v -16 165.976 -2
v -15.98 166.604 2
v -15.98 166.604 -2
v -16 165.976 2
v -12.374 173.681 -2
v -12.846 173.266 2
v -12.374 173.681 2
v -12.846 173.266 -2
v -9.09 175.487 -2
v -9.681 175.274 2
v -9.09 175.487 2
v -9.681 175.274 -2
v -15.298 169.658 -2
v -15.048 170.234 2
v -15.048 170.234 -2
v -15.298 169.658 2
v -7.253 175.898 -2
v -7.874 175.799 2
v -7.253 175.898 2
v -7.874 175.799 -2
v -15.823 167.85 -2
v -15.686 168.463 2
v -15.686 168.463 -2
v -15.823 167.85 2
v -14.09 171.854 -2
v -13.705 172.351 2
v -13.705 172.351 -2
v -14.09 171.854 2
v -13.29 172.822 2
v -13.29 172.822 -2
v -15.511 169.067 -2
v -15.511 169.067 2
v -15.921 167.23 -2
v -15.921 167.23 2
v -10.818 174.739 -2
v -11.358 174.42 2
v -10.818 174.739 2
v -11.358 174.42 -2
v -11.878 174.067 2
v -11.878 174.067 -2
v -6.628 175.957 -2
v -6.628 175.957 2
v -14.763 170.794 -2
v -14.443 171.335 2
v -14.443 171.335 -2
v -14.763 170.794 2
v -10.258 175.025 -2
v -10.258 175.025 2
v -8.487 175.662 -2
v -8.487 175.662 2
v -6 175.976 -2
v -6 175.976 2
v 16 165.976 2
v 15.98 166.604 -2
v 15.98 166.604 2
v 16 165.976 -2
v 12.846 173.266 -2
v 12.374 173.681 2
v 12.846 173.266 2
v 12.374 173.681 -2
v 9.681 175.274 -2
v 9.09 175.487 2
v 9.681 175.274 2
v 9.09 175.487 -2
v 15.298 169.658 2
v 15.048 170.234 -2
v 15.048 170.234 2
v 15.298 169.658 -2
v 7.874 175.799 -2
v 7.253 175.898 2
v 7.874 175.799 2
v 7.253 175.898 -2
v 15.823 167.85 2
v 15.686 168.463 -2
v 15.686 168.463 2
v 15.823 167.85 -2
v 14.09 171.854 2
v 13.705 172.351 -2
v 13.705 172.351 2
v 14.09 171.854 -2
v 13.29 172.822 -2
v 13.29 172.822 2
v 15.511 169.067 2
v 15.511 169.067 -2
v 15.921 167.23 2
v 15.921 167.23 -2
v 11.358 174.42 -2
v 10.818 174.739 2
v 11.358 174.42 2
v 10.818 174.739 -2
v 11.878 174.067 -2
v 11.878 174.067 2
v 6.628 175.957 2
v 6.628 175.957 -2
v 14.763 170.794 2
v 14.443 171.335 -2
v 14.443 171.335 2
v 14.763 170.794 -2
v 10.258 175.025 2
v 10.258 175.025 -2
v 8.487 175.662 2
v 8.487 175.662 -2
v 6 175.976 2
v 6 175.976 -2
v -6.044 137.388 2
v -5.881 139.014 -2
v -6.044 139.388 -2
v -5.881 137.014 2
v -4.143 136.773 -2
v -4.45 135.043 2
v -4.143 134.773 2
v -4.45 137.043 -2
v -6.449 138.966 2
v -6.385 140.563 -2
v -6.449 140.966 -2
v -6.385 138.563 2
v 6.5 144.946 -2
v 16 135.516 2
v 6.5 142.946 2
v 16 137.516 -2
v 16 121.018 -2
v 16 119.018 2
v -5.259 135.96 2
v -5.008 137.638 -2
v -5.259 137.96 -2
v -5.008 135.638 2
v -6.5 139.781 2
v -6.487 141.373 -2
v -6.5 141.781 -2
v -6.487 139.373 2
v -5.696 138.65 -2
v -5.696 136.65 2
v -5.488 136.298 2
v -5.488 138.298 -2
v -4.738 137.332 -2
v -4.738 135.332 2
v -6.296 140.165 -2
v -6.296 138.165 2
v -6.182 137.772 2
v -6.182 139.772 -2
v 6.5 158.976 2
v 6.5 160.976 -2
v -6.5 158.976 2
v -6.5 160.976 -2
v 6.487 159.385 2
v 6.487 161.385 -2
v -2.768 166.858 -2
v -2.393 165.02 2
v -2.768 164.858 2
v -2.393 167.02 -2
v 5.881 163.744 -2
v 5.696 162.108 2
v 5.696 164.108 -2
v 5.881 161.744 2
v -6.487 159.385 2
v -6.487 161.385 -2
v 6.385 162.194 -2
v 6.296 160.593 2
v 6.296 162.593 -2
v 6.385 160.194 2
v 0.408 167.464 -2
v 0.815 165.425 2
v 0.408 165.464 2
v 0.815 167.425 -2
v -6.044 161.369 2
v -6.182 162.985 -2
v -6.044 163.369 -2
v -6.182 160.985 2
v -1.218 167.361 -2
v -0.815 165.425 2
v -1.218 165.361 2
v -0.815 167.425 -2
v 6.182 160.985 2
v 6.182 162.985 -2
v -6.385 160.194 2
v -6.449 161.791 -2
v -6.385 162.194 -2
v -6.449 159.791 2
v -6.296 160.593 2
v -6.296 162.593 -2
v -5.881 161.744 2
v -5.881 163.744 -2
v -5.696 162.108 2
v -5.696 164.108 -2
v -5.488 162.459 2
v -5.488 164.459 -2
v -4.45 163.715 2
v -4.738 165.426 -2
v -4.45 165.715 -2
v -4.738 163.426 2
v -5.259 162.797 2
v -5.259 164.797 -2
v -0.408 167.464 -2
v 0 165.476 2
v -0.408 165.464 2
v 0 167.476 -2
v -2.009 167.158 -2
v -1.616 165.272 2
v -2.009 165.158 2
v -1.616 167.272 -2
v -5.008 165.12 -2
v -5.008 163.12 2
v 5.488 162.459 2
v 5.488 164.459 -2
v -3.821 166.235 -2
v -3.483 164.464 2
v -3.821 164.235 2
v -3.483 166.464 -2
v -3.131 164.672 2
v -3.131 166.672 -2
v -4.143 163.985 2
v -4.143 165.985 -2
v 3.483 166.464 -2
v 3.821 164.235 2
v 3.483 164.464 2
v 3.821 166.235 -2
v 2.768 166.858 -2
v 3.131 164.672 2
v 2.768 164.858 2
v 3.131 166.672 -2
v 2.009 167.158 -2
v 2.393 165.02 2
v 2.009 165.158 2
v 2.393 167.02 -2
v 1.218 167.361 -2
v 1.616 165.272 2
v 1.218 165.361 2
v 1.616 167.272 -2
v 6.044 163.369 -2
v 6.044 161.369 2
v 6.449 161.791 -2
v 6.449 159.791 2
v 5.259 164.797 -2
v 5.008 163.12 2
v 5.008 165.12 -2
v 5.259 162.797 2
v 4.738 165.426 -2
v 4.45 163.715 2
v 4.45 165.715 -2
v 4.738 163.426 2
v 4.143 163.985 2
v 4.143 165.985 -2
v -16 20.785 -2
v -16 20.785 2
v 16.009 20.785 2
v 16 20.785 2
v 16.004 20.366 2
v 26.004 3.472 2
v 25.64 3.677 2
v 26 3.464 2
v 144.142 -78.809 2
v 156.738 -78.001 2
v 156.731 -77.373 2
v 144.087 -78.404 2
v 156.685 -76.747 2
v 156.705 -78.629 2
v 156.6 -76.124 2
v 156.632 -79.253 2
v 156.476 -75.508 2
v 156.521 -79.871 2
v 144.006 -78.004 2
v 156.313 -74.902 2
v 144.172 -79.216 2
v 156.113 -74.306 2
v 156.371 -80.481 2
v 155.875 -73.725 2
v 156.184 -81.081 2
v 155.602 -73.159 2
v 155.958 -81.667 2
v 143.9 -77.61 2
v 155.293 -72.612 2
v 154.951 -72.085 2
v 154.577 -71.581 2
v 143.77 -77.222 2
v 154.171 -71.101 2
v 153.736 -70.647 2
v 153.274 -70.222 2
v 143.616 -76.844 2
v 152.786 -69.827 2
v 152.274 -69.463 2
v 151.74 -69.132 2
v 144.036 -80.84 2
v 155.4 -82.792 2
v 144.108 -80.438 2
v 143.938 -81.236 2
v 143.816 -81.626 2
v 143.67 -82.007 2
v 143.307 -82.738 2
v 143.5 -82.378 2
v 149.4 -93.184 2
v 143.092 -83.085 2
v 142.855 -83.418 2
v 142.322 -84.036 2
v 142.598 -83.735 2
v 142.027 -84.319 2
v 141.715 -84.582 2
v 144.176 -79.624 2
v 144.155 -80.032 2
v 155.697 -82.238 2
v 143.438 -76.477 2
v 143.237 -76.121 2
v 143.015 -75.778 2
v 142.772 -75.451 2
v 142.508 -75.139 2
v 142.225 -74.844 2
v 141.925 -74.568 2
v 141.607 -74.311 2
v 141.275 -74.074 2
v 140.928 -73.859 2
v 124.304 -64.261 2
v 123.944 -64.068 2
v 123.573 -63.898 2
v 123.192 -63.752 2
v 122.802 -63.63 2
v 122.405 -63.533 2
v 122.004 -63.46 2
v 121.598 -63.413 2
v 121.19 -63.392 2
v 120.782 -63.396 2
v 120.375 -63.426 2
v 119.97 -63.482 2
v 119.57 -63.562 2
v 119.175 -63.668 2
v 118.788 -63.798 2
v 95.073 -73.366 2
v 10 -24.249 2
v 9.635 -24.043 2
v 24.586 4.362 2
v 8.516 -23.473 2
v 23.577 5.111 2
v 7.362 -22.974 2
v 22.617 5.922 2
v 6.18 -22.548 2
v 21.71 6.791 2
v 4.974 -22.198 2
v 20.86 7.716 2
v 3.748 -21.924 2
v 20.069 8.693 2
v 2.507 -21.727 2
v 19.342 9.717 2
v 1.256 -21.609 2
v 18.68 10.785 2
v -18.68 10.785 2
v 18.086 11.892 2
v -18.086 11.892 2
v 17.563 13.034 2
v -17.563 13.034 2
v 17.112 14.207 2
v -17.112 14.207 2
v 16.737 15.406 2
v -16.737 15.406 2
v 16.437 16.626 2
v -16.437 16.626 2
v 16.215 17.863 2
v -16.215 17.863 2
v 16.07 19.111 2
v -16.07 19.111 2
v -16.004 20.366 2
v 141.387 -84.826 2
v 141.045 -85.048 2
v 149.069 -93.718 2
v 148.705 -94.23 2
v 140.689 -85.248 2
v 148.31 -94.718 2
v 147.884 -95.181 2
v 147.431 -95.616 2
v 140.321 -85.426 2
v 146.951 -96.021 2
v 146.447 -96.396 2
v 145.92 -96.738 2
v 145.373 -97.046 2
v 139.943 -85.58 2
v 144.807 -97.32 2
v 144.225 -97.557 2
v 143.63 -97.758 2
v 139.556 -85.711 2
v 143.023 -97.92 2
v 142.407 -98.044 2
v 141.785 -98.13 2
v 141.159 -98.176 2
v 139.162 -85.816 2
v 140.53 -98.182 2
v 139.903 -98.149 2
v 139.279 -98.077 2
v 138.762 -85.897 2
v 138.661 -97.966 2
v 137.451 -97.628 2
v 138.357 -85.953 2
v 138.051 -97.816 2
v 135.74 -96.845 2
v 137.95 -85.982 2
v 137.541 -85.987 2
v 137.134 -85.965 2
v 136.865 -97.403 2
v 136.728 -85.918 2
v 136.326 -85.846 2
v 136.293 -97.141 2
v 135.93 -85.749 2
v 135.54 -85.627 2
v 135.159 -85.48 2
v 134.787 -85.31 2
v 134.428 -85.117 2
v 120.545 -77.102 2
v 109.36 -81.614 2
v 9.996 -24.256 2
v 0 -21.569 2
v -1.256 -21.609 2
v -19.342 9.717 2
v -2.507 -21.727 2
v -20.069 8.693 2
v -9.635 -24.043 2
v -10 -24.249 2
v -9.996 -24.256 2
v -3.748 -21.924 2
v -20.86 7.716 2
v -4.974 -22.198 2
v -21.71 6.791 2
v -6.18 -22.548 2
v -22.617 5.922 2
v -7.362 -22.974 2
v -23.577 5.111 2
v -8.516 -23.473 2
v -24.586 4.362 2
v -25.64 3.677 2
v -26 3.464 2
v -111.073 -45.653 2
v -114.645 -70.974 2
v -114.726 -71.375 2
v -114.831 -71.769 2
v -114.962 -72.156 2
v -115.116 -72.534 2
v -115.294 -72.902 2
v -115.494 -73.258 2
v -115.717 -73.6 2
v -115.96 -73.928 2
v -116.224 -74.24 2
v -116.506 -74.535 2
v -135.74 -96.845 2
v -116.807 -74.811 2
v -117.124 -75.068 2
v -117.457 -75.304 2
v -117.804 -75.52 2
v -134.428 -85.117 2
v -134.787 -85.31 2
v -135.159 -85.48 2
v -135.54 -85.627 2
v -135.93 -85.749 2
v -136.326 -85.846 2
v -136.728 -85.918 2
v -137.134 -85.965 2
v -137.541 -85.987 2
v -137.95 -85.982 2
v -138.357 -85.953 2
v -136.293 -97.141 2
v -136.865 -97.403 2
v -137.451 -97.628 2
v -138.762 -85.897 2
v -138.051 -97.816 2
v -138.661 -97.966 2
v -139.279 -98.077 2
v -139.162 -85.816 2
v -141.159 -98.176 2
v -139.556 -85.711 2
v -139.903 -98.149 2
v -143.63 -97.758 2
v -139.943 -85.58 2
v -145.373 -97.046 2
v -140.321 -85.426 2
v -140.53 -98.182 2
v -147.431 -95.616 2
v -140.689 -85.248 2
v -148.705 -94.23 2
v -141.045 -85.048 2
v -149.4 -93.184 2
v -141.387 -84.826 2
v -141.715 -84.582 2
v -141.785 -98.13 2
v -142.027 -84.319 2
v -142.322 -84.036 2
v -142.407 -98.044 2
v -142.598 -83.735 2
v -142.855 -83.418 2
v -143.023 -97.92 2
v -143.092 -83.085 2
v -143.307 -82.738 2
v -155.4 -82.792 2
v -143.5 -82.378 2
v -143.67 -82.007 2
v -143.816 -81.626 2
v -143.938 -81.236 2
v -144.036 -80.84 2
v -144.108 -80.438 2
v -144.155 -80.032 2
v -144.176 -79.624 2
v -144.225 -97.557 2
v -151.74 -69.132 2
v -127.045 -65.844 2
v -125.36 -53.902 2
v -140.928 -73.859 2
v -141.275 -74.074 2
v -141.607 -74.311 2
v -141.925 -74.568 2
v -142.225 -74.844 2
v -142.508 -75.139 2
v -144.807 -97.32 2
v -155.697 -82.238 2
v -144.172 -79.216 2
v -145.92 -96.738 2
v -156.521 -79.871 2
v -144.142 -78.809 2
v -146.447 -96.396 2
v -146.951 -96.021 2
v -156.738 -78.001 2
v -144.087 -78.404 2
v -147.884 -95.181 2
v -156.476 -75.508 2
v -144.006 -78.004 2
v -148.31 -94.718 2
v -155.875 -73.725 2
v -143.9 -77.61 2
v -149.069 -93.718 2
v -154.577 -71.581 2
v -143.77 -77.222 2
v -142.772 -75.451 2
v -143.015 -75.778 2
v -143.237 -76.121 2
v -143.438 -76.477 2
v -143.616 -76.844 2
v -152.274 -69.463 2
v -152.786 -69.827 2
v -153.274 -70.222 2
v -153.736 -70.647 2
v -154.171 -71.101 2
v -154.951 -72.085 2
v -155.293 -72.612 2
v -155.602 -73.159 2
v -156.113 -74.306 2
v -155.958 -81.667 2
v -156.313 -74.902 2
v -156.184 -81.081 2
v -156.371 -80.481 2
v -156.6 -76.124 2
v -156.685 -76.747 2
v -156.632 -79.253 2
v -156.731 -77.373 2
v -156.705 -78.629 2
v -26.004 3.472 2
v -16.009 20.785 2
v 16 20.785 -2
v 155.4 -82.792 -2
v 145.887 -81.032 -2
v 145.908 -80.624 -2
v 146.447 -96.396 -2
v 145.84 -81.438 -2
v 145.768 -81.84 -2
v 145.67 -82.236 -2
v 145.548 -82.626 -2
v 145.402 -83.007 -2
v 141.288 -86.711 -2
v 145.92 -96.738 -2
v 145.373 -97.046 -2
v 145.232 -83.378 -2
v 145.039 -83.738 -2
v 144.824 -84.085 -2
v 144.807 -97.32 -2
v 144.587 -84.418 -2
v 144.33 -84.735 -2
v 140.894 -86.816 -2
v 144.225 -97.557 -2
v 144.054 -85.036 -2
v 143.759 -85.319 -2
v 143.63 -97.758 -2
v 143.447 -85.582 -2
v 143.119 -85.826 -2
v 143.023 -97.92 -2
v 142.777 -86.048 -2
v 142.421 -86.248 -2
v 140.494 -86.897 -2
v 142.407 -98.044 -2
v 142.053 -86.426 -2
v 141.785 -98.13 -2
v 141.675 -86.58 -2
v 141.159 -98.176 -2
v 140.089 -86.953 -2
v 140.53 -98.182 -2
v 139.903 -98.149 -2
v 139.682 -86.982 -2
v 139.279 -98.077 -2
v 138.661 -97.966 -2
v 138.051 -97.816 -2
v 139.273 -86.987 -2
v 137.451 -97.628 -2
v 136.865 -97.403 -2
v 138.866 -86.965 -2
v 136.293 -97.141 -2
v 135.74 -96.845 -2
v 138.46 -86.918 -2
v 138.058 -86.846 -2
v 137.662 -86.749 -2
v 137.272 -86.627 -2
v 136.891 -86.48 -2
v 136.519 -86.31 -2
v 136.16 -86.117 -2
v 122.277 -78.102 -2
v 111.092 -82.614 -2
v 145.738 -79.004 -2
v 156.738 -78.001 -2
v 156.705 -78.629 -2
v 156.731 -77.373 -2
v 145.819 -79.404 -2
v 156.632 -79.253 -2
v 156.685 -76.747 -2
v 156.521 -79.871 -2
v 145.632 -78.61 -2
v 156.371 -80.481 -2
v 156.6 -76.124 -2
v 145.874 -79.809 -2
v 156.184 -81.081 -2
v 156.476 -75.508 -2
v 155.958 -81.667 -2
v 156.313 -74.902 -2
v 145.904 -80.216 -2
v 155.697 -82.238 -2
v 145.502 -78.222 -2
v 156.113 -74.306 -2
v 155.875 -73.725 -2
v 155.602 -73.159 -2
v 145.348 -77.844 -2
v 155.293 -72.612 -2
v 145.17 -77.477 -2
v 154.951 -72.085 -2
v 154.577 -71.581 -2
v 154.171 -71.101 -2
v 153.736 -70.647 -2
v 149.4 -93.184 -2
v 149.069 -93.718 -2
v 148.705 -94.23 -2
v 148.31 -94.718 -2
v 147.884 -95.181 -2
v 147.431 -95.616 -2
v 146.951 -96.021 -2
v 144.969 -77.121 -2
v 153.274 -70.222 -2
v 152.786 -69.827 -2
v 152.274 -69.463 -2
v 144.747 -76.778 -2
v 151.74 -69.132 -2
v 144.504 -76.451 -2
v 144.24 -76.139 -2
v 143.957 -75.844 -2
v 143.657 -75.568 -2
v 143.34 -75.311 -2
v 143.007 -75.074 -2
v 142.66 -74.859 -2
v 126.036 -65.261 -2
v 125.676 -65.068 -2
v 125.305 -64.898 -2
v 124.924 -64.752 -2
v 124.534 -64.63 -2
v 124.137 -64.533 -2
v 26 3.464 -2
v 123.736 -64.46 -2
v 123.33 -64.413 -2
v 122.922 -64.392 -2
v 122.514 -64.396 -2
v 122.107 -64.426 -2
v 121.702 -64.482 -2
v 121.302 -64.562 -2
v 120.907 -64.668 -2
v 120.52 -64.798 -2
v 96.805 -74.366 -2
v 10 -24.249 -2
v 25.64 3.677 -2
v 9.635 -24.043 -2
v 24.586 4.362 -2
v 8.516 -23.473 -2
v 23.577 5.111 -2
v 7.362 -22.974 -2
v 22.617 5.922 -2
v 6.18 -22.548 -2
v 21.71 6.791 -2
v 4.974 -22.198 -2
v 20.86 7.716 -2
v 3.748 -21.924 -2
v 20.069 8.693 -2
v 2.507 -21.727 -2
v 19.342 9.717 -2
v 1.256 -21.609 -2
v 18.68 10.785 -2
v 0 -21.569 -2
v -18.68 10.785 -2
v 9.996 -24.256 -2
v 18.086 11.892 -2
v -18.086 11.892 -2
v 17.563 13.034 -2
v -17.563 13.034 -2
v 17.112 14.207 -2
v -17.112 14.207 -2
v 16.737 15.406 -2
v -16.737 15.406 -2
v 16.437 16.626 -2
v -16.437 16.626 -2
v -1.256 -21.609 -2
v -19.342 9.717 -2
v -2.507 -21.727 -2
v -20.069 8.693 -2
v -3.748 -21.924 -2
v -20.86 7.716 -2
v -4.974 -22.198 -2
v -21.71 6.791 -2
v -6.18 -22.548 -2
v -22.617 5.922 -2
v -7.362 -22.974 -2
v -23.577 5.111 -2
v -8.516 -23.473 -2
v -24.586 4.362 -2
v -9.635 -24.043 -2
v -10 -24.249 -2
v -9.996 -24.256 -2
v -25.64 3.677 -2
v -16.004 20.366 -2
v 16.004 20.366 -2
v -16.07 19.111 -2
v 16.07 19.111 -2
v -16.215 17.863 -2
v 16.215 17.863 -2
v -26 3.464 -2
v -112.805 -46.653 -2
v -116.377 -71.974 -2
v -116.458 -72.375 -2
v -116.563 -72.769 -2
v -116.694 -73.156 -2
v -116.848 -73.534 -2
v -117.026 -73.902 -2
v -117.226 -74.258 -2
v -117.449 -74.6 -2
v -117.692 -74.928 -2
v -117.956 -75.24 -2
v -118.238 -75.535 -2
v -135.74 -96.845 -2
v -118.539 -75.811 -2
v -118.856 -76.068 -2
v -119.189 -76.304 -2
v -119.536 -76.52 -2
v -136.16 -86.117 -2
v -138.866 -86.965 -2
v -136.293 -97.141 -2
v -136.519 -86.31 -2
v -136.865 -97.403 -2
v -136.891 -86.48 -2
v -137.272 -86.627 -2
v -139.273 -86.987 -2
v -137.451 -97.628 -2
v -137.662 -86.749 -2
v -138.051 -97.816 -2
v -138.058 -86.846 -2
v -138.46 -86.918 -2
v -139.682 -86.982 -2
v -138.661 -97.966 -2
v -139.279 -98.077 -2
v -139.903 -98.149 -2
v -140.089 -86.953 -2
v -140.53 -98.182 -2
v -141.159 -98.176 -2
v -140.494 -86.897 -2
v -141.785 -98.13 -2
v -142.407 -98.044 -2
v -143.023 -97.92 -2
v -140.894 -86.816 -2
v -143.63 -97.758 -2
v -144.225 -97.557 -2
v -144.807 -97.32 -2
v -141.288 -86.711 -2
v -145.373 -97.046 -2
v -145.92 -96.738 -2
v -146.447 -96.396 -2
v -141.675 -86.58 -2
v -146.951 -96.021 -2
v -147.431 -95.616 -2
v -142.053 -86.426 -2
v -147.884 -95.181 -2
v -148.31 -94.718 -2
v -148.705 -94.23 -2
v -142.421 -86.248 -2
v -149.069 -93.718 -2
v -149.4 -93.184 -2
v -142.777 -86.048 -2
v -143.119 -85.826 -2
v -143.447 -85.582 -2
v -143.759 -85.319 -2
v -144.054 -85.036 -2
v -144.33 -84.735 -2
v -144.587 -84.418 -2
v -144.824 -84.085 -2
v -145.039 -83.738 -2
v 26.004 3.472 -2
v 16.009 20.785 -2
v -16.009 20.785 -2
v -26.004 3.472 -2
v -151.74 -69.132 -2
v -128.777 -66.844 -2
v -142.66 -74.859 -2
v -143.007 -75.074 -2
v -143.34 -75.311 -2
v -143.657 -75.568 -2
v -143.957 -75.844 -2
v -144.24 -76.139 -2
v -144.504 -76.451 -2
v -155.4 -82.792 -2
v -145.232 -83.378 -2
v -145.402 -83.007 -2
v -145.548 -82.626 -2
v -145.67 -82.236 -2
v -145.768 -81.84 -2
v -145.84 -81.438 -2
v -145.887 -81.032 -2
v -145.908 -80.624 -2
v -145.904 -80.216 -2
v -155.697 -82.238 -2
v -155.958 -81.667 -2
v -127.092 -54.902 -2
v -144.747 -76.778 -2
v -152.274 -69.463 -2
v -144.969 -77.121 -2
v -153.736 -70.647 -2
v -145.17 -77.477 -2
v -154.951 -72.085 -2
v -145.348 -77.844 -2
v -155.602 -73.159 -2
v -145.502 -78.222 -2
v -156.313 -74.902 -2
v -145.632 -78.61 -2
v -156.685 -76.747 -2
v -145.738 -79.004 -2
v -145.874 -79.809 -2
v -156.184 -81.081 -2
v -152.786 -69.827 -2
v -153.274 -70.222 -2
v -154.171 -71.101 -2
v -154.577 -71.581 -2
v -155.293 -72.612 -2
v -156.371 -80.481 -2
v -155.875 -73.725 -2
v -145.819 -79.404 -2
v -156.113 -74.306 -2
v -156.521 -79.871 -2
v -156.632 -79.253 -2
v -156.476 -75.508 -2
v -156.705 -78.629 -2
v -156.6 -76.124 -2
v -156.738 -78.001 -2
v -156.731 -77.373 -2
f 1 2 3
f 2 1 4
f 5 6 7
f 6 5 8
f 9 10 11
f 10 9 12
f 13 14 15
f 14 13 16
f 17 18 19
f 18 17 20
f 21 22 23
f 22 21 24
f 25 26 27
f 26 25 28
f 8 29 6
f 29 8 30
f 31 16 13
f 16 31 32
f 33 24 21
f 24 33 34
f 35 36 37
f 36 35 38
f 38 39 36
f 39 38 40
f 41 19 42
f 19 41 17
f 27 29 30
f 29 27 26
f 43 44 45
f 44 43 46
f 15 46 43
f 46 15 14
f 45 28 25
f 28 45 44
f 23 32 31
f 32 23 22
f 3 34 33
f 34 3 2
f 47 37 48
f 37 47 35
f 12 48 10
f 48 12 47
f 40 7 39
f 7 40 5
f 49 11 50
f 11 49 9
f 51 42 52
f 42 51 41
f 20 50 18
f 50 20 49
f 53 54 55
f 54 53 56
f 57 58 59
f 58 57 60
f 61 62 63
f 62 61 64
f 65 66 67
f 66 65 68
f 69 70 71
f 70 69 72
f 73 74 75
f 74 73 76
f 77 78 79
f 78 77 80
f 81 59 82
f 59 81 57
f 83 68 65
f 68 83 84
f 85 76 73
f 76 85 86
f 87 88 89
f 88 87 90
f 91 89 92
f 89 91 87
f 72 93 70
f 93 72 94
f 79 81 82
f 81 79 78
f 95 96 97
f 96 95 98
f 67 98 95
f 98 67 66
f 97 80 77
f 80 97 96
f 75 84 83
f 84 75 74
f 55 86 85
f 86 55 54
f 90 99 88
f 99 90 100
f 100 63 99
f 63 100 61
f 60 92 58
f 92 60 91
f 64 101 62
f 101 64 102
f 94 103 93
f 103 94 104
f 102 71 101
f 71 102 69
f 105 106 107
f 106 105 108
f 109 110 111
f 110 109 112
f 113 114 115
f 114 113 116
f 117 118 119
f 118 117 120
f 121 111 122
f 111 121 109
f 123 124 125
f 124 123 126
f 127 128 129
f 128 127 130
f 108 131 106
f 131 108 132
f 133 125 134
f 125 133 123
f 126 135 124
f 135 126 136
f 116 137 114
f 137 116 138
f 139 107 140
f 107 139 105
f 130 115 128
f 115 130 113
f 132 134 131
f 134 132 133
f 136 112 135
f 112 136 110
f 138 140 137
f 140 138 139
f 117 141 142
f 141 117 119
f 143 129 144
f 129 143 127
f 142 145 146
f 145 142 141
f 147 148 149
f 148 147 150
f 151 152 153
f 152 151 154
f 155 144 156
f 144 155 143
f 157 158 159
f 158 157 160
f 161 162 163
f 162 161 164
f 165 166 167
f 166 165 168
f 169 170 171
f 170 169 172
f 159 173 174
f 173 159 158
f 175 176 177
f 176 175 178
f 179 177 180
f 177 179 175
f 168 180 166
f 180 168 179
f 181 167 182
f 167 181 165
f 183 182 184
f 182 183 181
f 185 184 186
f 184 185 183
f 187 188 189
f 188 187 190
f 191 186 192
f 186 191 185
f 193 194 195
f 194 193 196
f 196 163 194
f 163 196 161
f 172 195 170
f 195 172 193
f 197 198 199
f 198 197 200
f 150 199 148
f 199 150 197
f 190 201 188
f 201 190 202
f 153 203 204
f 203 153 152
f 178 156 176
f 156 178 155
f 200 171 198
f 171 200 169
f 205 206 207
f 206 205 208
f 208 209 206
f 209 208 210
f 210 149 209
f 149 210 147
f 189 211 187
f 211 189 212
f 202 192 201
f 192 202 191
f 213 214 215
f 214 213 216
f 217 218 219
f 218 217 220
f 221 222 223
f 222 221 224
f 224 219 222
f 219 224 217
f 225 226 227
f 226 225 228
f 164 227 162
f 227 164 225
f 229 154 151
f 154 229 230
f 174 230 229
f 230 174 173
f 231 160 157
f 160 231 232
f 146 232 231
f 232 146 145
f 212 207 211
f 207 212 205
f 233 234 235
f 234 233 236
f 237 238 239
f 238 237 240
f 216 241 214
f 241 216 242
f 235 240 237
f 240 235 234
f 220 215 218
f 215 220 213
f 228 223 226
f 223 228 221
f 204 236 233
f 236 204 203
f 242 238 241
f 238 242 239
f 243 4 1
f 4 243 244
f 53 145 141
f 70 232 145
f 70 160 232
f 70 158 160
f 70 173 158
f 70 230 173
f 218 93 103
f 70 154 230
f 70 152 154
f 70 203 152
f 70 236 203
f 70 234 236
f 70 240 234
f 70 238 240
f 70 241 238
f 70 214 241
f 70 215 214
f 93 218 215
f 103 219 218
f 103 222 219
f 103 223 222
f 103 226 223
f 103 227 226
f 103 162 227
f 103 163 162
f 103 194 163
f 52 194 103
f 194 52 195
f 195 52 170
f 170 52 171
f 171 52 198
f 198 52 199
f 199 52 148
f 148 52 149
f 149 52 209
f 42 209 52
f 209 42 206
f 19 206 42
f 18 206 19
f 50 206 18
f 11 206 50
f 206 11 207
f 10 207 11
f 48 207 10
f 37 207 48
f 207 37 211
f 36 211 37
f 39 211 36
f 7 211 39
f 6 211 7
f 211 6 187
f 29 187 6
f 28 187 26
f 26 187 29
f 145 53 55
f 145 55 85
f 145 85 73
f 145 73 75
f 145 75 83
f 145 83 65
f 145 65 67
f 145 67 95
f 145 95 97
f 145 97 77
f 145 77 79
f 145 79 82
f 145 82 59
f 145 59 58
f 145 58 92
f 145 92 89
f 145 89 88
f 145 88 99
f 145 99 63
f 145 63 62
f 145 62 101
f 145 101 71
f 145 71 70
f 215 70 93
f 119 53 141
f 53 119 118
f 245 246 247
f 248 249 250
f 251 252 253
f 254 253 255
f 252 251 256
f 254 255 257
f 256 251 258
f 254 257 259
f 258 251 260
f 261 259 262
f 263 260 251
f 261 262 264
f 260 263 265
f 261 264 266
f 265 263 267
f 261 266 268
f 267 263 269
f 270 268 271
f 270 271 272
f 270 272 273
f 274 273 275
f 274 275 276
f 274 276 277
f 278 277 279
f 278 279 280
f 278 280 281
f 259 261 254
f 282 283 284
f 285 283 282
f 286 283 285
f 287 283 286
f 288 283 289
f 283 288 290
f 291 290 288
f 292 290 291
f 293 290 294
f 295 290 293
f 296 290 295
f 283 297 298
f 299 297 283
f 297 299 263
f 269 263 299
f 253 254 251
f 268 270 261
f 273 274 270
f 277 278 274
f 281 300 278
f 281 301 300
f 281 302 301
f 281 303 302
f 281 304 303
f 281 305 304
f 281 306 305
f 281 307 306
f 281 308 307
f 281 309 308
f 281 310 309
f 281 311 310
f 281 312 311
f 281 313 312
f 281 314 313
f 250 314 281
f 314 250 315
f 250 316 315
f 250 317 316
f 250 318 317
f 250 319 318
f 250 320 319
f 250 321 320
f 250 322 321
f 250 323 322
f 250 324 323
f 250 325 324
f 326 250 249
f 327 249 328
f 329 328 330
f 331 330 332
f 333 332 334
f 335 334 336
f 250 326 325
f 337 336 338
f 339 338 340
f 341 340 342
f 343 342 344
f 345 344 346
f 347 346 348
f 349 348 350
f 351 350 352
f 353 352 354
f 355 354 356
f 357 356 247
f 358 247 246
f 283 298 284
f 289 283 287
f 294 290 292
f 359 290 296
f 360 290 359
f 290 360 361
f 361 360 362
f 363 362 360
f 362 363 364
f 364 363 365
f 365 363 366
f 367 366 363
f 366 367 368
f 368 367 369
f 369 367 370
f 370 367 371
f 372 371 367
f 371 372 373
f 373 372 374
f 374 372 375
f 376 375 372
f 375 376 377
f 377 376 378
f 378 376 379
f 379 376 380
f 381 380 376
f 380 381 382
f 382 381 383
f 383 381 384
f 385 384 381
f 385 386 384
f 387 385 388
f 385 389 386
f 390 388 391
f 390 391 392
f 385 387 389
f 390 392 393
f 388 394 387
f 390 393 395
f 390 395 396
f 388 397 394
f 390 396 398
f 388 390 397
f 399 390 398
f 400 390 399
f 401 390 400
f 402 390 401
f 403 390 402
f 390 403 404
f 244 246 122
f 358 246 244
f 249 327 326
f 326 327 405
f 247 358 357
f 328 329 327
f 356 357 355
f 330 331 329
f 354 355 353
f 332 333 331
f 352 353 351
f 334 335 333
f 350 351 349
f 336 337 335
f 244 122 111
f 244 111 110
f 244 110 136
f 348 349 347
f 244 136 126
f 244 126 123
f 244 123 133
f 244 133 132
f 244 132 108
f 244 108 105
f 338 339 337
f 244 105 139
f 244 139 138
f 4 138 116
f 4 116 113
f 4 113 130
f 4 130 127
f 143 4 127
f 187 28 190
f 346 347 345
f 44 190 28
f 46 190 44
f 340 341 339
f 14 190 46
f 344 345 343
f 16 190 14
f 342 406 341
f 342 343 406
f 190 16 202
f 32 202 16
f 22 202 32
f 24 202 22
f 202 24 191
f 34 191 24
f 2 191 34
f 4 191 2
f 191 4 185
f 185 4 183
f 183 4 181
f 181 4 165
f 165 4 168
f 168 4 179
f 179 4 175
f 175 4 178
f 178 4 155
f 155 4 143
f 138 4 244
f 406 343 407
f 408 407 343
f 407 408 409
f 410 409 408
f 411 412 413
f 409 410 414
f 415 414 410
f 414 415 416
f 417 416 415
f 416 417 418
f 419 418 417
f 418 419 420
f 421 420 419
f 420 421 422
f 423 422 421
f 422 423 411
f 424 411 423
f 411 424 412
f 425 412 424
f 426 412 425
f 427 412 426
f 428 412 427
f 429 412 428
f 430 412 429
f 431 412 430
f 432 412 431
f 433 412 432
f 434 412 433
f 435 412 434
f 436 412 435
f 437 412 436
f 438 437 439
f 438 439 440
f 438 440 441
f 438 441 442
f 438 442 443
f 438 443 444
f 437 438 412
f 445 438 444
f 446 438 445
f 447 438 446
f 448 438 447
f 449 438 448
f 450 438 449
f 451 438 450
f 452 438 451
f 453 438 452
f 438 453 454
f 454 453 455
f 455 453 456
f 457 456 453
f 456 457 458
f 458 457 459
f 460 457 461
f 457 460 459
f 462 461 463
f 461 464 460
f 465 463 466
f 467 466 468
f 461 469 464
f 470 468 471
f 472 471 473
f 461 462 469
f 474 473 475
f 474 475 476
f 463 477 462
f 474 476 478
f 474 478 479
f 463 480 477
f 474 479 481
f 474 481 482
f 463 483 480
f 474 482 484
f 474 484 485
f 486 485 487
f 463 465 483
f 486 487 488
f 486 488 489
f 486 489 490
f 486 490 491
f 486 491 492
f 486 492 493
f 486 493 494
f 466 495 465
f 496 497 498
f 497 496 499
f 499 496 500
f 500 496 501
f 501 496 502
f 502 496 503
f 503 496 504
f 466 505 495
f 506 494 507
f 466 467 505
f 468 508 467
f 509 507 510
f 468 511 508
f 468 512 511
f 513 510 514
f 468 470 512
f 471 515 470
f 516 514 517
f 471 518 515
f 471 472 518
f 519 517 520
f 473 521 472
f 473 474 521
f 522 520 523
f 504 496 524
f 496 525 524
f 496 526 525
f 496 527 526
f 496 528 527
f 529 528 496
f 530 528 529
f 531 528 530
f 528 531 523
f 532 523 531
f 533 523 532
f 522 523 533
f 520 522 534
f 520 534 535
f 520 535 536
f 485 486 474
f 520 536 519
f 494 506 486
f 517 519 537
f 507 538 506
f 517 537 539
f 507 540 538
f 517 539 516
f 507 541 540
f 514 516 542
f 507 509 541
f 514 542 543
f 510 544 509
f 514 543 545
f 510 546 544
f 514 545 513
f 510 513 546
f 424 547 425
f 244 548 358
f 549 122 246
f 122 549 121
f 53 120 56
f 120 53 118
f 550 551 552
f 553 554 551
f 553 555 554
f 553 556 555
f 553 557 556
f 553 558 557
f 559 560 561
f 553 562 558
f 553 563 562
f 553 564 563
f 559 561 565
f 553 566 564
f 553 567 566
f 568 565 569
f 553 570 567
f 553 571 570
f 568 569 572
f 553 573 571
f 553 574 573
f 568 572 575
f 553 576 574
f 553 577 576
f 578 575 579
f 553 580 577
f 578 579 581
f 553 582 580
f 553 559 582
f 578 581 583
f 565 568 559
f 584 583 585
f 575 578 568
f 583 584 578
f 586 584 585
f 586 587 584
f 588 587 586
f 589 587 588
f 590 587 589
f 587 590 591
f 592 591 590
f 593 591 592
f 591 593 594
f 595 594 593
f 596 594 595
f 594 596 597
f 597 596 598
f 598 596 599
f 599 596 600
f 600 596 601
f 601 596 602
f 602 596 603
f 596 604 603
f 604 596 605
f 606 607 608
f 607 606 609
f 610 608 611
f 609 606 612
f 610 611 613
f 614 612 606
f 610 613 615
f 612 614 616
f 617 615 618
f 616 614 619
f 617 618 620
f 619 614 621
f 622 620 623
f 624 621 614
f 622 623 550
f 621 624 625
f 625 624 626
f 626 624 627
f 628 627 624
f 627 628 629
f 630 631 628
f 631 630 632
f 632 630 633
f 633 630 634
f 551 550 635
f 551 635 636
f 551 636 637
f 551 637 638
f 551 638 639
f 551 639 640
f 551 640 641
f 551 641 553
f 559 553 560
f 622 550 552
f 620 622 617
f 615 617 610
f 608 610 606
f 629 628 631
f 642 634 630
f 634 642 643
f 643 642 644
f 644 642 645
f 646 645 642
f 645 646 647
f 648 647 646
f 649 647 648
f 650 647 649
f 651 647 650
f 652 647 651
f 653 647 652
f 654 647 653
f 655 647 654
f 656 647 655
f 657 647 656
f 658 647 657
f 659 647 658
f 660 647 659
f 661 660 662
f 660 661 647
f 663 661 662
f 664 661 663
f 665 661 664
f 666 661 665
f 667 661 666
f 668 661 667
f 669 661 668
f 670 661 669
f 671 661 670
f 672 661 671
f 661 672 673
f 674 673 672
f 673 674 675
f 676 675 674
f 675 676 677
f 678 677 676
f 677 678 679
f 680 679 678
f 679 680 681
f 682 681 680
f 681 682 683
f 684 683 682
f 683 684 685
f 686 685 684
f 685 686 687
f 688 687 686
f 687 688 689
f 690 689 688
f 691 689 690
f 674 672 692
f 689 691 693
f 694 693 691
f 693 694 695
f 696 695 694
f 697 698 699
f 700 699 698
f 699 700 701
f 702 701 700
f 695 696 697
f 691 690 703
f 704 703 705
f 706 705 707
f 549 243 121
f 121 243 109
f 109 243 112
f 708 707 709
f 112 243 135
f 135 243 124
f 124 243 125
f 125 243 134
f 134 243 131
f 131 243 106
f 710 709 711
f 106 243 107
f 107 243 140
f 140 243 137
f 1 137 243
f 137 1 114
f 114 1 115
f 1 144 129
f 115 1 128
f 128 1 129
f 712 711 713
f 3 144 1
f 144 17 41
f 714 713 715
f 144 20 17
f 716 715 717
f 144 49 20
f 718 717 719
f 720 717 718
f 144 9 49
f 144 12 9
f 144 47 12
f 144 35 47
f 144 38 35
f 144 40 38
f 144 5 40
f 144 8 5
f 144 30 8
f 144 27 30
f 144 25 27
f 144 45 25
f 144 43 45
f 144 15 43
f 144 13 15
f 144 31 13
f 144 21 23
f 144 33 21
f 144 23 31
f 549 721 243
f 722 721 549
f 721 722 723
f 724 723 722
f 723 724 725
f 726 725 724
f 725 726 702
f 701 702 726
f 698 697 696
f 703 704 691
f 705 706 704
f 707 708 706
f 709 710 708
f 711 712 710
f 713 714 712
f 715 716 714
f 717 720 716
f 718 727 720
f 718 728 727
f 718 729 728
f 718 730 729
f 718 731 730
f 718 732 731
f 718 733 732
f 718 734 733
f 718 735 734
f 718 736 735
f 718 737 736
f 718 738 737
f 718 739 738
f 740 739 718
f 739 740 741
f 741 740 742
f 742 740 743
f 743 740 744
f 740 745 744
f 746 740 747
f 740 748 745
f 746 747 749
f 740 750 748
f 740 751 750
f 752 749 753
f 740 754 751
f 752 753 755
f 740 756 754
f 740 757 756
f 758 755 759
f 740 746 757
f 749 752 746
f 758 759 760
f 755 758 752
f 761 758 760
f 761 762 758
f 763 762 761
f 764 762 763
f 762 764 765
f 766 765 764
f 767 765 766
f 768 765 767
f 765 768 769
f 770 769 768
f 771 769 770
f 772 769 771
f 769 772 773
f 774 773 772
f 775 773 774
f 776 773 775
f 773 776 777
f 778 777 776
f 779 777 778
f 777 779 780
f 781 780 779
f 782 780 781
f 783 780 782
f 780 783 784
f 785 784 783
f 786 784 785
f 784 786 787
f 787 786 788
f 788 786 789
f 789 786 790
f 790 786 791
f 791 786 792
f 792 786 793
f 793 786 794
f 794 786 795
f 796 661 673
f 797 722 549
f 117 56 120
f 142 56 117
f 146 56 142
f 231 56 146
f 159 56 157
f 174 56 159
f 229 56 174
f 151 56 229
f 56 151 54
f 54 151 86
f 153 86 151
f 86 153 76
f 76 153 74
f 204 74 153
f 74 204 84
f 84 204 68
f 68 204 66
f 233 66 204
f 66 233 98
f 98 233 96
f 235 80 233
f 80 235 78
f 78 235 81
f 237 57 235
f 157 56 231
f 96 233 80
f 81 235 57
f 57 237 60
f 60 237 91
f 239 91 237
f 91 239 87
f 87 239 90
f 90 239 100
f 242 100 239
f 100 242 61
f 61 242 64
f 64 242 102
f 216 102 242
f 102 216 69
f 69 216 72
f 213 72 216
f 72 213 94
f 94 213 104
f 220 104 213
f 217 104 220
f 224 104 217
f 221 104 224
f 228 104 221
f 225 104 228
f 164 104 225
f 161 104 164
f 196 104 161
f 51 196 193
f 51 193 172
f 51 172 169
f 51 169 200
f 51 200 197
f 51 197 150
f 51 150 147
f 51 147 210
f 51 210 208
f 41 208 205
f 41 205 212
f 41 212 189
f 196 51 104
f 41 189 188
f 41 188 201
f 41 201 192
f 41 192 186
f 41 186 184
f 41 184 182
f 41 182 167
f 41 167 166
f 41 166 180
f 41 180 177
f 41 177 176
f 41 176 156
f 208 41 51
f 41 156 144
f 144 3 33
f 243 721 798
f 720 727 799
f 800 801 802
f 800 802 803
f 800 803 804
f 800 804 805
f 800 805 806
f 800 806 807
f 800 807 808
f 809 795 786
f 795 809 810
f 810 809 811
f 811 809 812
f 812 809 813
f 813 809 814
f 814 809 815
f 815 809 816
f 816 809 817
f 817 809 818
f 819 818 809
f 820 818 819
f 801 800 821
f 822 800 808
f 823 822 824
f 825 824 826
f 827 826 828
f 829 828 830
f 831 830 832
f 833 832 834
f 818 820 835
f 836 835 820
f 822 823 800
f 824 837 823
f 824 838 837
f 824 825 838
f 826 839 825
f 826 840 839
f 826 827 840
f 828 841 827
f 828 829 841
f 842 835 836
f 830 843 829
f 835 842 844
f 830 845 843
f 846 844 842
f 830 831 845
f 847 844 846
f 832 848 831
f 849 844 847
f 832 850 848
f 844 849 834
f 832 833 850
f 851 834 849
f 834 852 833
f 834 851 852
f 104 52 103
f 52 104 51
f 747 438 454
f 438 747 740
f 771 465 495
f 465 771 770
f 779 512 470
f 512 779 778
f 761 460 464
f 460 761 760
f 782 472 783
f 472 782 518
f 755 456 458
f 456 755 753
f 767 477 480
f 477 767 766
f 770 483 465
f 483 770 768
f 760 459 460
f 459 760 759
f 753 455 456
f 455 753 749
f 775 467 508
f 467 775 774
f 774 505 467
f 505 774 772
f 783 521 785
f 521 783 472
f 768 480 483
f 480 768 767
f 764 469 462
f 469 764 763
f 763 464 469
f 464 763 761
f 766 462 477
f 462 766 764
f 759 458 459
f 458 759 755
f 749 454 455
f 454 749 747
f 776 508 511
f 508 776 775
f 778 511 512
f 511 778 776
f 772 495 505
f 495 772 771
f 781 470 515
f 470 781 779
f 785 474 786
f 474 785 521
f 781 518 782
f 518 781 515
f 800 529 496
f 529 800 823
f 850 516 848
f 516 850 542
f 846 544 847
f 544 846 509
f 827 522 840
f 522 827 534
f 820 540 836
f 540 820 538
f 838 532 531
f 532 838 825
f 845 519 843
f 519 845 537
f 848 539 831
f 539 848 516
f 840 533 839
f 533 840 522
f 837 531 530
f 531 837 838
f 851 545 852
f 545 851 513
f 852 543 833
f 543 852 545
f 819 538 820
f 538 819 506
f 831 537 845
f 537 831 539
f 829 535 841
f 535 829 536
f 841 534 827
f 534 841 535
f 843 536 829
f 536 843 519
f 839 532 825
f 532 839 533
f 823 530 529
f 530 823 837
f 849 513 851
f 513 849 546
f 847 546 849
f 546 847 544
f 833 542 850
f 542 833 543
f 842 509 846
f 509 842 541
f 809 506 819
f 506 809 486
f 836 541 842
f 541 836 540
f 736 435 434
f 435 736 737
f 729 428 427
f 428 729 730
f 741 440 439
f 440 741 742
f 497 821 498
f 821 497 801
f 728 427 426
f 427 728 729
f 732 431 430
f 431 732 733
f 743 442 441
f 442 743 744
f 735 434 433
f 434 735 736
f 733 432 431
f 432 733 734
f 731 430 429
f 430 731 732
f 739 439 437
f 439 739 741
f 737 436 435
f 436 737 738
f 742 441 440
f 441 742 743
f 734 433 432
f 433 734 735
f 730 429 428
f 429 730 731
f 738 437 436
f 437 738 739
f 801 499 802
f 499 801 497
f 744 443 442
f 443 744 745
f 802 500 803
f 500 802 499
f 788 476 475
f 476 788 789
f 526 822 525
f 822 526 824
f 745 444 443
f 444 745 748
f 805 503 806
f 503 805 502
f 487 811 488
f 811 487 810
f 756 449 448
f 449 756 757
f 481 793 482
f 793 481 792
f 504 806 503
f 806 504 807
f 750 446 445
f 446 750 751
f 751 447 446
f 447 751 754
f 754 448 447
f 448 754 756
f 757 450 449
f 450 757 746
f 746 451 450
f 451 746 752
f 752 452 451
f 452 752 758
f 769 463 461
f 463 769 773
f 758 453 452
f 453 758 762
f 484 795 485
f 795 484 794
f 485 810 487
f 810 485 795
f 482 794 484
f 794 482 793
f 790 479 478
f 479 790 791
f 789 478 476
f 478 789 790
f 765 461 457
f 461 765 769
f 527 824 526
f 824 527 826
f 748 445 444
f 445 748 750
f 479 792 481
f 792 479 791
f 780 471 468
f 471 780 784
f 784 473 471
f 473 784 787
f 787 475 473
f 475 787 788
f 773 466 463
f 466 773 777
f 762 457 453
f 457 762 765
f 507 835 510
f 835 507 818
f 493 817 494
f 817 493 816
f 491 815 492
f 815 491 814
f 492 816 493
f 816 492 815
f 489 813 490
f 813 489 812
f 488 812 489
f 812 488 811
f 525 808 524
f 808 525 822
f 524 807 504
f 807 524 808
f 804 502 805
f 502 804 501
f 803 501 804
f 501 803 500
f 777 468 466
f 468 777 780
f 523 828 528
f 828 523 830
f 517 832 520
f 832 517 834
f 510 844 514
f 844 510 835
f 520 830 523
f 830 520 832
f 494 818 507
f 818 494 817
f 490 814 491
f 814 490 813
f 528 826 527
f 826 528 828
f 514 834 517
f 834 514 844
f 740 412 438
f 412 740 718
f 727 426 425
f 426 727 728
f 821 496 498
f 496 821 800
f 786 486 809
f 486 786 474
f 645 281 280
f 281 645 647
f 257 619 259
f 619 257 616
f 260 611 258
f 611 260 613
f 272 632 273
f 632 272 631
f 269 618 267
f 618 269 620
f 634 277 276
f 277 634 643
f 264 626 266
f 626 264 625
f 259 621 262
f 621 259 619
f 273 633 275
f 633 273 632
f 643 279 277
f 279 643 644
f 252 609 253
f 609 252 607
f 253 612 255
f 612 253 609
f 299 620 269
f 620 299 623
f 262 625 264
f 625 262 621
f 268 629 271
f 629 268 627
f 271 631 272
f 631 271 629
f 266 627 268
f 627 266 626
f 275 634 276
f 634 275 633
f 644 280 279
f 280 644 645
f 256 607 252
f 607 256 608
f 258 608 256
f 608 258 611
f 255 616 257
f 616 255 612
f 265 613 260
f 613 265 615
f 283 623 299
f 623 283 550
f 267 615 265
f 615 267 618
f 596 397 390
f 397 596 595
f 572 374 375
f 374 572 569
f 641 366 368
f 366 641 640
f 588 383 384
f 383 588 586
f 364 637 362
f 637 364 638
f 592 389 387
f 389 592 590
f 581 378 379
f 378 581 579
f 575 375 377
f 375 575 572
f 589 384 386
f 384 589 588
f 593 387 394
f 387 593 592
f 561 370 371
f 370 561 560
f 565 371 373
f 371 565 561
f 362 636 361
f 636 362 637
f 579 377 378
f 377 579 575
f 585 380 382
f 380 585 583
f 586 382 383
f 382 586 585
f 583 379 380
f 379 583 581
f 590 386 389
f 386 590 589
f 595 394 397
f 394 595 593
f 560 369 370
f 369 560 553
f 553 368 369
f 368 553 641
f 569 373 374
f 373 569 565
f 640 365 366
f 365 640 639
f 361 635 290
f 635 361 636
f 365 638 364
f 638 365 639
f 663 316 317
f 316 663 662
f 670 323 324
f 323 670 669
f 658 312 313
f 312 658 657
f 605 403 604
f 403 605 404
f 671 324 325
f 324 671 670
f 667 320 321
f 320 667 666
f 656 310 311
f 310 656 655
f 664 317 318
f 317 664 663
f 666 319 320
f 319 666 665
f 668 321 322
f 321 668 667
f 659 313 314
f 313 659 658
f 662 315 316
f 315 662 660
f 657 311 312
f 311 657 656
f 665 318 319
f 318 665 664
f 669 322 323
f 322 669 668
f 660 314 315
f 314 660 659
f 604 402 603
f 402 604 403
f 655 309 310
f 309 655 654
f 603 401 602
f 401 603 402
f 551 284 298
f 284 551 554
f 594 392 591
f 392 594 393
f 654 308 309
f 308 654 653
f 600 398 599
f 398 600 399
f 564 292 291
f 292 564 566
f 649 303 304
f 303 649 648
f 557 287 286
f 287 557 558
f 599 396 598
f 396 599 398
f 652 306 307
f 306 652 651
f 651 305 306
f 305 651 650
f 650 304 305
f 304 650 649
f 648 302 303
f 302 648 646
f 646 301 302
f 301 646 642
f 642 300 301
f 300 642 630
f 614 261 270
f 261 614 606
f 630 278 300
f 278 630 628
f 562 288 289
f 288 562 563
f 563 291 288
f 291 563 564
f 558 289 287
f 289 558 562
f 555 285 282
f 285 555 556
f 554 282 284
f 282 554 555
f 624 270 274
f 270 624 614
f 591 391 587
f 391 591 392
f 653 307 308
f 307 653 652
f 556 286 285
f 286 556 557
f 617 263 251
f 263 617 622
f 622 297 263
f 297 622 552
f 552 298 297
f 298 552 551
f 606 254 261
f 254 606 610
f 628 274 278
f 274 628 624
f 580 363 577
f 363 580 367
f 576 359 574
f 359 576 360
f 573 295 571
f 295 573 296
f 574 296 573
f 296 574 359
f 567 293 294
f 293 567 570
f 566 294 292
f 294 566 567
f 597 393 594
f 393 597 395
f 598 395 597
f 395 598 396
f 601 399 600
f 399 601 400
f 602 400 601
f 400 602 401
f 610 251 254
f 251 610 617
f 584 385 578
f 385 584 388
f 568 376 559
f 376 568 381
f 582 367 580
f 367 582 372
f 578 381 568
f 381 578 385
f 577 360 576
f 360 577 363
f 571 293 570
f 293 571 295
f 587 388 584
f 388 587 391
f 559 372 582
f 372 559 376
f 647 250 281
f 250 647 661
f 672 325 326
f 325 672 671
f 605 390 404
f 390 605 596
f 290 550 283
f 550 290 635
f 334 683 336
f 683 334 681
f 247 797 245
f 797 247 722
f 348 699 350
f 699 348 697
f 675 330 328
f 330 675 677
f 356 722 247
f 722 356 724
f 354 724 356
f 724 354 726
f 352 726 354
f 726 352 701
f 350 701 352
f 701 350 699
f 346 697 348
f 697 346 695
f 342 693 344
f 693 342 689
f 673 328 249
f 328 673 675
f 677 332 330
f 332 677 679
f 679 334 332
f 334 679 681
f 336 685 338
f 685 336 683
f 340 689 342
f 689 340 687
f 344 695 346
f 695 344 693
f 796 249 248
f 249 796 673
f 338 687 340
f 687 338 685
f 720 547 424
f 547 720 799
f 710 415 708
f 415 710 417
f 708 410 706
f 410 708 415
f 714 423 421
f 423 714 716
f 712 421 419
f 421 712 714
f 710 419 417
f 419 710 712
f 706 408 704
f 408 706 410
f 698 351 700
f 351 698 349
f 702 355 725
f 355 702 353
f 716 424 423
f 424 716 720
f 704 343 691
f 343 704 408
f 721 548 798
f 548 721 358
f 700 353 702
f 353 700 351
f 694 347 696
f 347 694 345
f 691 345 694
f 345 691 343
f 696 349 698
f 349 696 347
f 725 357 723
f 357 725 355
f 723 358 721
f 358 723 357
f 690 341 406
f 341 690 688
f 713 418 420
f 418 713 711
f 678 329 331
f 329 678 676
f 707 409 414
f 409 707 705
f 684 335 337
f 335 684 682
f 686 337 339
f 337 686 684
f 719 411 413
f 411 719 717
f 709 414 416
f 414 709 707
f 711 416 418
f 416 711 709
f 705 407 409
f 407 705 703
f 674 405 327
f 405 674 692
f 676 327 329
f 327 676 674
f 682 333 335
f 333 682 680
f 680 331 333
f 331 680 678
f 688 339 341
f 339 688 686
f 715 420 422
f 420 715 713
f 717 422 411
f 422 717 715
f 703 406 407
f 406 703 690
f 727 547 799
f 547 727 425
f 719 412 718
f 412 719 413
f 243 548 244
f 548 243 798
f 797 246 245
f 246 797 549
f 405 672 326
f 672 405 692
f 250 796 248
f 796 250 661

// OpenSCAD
$fn = 100;

arm_width_mm = 32;
corner_radius_mm = 10;
radius_inch = 12 / sqrt(3);
thickness_mm = 4;
slot_width_mm = 13;
slot_start = 0.7;
slot_straight = 0.8;
slot_skew = -0.5;
joint_rounding_mm = 20;

radius_mm = radius_inch * 25.4;

module outer_corner()
{
  difference()
  {
    translate([-(corner_radius_mm + 1) / 2, (corner_radius_mm + 1) / 2])
    cube([corner_radius_mm + 1, corner_radius_mm + 1, thickness_mm + 2], center = true);
    
    cylinder(thickness_mm + 1, corner_radius_mm, corner_radius_mm, center = true);
  }
}

module slot()
{
  multmatrix(
    [ [ 1, 0,         0, 0 ],
      [ 0, 1, slot_skew, 0 ],
      [ 0, 0,         1, 0 ],
      [ 0, 0,         0, 1 ] ]
  )
  union()
  {
    hull()
    {
      translate([arm_width_mm * 0.5 + slot_width_mm * 0.5, radius_mm * slot_start, 0])
      cylinder(thickness_mm + 1, slot_width_mm * 0.5, slot_width_mm * 0.5, center = true);

      translate([0, radius_mm * slot_straight, 0])
      cylinder(thickness_mm + 1, slot_width_mm * 0.5, slot_width_mm * 0.5, center = true);
    }
    hull()
    {
      translate([0, radius_mm * slot_straight, 0])
      cylinder(thickness_mm + 1, slot_width_mm * 0.5, slot_width_mm * 0.5, center = true);

      translate([0, radius_mm - arm_width_mm * 0.5, 0])
      cylinder(thickness_mm + 1, slot_width_mm * 0.5, slot_width_mm * 0.5, center = true);
    }
  }
}

module arm()
{
  difference()
  {
    translate([0, radius_mm / 2, 0]) cube([arm_width_mm, radius_inch * 25.4, 4], center = true);

    translate([-0.5 * arm_width_mm + corner_radius_mm, radius_mm - corner_radius_mm, 0])
    outer_corner();

    scale([-1, 1, 1])
    translate([-0.5 * arm_width_mm + corner_radius_mm, radius_mm - corner_radius_mm, 0])
    outer_corner();

    slot();
  }
}

joint_rounding_edge_length_mm = 2 * joint_rounding_mm + arm_width_mm;
joint_rounding_radius_mm = joint_rounding_edge_length_mm / sqrt(3);

union()
{
  rotate([0, 0, 0]) arm();
  rotate([0, 0, 120]) arm();
  rotate([0, 0, 240]) arm();

  difference()
  {
    rotate([0, 0, 30])
    cylinder(thickness_mm, joint_rounding_radius_mm, joint_rounding_radius_mm, $fn = 3, center = true);
    
    for (position = [0 : 2])
      rotate([0, 0, 30 + position * 120])
      translate([joint_rounding_radius_mm, 0, 0])
      cylinder(thickness_mm + 50, joint_rounding_mm, joint_rounding_mm, center = true);
  }
}
